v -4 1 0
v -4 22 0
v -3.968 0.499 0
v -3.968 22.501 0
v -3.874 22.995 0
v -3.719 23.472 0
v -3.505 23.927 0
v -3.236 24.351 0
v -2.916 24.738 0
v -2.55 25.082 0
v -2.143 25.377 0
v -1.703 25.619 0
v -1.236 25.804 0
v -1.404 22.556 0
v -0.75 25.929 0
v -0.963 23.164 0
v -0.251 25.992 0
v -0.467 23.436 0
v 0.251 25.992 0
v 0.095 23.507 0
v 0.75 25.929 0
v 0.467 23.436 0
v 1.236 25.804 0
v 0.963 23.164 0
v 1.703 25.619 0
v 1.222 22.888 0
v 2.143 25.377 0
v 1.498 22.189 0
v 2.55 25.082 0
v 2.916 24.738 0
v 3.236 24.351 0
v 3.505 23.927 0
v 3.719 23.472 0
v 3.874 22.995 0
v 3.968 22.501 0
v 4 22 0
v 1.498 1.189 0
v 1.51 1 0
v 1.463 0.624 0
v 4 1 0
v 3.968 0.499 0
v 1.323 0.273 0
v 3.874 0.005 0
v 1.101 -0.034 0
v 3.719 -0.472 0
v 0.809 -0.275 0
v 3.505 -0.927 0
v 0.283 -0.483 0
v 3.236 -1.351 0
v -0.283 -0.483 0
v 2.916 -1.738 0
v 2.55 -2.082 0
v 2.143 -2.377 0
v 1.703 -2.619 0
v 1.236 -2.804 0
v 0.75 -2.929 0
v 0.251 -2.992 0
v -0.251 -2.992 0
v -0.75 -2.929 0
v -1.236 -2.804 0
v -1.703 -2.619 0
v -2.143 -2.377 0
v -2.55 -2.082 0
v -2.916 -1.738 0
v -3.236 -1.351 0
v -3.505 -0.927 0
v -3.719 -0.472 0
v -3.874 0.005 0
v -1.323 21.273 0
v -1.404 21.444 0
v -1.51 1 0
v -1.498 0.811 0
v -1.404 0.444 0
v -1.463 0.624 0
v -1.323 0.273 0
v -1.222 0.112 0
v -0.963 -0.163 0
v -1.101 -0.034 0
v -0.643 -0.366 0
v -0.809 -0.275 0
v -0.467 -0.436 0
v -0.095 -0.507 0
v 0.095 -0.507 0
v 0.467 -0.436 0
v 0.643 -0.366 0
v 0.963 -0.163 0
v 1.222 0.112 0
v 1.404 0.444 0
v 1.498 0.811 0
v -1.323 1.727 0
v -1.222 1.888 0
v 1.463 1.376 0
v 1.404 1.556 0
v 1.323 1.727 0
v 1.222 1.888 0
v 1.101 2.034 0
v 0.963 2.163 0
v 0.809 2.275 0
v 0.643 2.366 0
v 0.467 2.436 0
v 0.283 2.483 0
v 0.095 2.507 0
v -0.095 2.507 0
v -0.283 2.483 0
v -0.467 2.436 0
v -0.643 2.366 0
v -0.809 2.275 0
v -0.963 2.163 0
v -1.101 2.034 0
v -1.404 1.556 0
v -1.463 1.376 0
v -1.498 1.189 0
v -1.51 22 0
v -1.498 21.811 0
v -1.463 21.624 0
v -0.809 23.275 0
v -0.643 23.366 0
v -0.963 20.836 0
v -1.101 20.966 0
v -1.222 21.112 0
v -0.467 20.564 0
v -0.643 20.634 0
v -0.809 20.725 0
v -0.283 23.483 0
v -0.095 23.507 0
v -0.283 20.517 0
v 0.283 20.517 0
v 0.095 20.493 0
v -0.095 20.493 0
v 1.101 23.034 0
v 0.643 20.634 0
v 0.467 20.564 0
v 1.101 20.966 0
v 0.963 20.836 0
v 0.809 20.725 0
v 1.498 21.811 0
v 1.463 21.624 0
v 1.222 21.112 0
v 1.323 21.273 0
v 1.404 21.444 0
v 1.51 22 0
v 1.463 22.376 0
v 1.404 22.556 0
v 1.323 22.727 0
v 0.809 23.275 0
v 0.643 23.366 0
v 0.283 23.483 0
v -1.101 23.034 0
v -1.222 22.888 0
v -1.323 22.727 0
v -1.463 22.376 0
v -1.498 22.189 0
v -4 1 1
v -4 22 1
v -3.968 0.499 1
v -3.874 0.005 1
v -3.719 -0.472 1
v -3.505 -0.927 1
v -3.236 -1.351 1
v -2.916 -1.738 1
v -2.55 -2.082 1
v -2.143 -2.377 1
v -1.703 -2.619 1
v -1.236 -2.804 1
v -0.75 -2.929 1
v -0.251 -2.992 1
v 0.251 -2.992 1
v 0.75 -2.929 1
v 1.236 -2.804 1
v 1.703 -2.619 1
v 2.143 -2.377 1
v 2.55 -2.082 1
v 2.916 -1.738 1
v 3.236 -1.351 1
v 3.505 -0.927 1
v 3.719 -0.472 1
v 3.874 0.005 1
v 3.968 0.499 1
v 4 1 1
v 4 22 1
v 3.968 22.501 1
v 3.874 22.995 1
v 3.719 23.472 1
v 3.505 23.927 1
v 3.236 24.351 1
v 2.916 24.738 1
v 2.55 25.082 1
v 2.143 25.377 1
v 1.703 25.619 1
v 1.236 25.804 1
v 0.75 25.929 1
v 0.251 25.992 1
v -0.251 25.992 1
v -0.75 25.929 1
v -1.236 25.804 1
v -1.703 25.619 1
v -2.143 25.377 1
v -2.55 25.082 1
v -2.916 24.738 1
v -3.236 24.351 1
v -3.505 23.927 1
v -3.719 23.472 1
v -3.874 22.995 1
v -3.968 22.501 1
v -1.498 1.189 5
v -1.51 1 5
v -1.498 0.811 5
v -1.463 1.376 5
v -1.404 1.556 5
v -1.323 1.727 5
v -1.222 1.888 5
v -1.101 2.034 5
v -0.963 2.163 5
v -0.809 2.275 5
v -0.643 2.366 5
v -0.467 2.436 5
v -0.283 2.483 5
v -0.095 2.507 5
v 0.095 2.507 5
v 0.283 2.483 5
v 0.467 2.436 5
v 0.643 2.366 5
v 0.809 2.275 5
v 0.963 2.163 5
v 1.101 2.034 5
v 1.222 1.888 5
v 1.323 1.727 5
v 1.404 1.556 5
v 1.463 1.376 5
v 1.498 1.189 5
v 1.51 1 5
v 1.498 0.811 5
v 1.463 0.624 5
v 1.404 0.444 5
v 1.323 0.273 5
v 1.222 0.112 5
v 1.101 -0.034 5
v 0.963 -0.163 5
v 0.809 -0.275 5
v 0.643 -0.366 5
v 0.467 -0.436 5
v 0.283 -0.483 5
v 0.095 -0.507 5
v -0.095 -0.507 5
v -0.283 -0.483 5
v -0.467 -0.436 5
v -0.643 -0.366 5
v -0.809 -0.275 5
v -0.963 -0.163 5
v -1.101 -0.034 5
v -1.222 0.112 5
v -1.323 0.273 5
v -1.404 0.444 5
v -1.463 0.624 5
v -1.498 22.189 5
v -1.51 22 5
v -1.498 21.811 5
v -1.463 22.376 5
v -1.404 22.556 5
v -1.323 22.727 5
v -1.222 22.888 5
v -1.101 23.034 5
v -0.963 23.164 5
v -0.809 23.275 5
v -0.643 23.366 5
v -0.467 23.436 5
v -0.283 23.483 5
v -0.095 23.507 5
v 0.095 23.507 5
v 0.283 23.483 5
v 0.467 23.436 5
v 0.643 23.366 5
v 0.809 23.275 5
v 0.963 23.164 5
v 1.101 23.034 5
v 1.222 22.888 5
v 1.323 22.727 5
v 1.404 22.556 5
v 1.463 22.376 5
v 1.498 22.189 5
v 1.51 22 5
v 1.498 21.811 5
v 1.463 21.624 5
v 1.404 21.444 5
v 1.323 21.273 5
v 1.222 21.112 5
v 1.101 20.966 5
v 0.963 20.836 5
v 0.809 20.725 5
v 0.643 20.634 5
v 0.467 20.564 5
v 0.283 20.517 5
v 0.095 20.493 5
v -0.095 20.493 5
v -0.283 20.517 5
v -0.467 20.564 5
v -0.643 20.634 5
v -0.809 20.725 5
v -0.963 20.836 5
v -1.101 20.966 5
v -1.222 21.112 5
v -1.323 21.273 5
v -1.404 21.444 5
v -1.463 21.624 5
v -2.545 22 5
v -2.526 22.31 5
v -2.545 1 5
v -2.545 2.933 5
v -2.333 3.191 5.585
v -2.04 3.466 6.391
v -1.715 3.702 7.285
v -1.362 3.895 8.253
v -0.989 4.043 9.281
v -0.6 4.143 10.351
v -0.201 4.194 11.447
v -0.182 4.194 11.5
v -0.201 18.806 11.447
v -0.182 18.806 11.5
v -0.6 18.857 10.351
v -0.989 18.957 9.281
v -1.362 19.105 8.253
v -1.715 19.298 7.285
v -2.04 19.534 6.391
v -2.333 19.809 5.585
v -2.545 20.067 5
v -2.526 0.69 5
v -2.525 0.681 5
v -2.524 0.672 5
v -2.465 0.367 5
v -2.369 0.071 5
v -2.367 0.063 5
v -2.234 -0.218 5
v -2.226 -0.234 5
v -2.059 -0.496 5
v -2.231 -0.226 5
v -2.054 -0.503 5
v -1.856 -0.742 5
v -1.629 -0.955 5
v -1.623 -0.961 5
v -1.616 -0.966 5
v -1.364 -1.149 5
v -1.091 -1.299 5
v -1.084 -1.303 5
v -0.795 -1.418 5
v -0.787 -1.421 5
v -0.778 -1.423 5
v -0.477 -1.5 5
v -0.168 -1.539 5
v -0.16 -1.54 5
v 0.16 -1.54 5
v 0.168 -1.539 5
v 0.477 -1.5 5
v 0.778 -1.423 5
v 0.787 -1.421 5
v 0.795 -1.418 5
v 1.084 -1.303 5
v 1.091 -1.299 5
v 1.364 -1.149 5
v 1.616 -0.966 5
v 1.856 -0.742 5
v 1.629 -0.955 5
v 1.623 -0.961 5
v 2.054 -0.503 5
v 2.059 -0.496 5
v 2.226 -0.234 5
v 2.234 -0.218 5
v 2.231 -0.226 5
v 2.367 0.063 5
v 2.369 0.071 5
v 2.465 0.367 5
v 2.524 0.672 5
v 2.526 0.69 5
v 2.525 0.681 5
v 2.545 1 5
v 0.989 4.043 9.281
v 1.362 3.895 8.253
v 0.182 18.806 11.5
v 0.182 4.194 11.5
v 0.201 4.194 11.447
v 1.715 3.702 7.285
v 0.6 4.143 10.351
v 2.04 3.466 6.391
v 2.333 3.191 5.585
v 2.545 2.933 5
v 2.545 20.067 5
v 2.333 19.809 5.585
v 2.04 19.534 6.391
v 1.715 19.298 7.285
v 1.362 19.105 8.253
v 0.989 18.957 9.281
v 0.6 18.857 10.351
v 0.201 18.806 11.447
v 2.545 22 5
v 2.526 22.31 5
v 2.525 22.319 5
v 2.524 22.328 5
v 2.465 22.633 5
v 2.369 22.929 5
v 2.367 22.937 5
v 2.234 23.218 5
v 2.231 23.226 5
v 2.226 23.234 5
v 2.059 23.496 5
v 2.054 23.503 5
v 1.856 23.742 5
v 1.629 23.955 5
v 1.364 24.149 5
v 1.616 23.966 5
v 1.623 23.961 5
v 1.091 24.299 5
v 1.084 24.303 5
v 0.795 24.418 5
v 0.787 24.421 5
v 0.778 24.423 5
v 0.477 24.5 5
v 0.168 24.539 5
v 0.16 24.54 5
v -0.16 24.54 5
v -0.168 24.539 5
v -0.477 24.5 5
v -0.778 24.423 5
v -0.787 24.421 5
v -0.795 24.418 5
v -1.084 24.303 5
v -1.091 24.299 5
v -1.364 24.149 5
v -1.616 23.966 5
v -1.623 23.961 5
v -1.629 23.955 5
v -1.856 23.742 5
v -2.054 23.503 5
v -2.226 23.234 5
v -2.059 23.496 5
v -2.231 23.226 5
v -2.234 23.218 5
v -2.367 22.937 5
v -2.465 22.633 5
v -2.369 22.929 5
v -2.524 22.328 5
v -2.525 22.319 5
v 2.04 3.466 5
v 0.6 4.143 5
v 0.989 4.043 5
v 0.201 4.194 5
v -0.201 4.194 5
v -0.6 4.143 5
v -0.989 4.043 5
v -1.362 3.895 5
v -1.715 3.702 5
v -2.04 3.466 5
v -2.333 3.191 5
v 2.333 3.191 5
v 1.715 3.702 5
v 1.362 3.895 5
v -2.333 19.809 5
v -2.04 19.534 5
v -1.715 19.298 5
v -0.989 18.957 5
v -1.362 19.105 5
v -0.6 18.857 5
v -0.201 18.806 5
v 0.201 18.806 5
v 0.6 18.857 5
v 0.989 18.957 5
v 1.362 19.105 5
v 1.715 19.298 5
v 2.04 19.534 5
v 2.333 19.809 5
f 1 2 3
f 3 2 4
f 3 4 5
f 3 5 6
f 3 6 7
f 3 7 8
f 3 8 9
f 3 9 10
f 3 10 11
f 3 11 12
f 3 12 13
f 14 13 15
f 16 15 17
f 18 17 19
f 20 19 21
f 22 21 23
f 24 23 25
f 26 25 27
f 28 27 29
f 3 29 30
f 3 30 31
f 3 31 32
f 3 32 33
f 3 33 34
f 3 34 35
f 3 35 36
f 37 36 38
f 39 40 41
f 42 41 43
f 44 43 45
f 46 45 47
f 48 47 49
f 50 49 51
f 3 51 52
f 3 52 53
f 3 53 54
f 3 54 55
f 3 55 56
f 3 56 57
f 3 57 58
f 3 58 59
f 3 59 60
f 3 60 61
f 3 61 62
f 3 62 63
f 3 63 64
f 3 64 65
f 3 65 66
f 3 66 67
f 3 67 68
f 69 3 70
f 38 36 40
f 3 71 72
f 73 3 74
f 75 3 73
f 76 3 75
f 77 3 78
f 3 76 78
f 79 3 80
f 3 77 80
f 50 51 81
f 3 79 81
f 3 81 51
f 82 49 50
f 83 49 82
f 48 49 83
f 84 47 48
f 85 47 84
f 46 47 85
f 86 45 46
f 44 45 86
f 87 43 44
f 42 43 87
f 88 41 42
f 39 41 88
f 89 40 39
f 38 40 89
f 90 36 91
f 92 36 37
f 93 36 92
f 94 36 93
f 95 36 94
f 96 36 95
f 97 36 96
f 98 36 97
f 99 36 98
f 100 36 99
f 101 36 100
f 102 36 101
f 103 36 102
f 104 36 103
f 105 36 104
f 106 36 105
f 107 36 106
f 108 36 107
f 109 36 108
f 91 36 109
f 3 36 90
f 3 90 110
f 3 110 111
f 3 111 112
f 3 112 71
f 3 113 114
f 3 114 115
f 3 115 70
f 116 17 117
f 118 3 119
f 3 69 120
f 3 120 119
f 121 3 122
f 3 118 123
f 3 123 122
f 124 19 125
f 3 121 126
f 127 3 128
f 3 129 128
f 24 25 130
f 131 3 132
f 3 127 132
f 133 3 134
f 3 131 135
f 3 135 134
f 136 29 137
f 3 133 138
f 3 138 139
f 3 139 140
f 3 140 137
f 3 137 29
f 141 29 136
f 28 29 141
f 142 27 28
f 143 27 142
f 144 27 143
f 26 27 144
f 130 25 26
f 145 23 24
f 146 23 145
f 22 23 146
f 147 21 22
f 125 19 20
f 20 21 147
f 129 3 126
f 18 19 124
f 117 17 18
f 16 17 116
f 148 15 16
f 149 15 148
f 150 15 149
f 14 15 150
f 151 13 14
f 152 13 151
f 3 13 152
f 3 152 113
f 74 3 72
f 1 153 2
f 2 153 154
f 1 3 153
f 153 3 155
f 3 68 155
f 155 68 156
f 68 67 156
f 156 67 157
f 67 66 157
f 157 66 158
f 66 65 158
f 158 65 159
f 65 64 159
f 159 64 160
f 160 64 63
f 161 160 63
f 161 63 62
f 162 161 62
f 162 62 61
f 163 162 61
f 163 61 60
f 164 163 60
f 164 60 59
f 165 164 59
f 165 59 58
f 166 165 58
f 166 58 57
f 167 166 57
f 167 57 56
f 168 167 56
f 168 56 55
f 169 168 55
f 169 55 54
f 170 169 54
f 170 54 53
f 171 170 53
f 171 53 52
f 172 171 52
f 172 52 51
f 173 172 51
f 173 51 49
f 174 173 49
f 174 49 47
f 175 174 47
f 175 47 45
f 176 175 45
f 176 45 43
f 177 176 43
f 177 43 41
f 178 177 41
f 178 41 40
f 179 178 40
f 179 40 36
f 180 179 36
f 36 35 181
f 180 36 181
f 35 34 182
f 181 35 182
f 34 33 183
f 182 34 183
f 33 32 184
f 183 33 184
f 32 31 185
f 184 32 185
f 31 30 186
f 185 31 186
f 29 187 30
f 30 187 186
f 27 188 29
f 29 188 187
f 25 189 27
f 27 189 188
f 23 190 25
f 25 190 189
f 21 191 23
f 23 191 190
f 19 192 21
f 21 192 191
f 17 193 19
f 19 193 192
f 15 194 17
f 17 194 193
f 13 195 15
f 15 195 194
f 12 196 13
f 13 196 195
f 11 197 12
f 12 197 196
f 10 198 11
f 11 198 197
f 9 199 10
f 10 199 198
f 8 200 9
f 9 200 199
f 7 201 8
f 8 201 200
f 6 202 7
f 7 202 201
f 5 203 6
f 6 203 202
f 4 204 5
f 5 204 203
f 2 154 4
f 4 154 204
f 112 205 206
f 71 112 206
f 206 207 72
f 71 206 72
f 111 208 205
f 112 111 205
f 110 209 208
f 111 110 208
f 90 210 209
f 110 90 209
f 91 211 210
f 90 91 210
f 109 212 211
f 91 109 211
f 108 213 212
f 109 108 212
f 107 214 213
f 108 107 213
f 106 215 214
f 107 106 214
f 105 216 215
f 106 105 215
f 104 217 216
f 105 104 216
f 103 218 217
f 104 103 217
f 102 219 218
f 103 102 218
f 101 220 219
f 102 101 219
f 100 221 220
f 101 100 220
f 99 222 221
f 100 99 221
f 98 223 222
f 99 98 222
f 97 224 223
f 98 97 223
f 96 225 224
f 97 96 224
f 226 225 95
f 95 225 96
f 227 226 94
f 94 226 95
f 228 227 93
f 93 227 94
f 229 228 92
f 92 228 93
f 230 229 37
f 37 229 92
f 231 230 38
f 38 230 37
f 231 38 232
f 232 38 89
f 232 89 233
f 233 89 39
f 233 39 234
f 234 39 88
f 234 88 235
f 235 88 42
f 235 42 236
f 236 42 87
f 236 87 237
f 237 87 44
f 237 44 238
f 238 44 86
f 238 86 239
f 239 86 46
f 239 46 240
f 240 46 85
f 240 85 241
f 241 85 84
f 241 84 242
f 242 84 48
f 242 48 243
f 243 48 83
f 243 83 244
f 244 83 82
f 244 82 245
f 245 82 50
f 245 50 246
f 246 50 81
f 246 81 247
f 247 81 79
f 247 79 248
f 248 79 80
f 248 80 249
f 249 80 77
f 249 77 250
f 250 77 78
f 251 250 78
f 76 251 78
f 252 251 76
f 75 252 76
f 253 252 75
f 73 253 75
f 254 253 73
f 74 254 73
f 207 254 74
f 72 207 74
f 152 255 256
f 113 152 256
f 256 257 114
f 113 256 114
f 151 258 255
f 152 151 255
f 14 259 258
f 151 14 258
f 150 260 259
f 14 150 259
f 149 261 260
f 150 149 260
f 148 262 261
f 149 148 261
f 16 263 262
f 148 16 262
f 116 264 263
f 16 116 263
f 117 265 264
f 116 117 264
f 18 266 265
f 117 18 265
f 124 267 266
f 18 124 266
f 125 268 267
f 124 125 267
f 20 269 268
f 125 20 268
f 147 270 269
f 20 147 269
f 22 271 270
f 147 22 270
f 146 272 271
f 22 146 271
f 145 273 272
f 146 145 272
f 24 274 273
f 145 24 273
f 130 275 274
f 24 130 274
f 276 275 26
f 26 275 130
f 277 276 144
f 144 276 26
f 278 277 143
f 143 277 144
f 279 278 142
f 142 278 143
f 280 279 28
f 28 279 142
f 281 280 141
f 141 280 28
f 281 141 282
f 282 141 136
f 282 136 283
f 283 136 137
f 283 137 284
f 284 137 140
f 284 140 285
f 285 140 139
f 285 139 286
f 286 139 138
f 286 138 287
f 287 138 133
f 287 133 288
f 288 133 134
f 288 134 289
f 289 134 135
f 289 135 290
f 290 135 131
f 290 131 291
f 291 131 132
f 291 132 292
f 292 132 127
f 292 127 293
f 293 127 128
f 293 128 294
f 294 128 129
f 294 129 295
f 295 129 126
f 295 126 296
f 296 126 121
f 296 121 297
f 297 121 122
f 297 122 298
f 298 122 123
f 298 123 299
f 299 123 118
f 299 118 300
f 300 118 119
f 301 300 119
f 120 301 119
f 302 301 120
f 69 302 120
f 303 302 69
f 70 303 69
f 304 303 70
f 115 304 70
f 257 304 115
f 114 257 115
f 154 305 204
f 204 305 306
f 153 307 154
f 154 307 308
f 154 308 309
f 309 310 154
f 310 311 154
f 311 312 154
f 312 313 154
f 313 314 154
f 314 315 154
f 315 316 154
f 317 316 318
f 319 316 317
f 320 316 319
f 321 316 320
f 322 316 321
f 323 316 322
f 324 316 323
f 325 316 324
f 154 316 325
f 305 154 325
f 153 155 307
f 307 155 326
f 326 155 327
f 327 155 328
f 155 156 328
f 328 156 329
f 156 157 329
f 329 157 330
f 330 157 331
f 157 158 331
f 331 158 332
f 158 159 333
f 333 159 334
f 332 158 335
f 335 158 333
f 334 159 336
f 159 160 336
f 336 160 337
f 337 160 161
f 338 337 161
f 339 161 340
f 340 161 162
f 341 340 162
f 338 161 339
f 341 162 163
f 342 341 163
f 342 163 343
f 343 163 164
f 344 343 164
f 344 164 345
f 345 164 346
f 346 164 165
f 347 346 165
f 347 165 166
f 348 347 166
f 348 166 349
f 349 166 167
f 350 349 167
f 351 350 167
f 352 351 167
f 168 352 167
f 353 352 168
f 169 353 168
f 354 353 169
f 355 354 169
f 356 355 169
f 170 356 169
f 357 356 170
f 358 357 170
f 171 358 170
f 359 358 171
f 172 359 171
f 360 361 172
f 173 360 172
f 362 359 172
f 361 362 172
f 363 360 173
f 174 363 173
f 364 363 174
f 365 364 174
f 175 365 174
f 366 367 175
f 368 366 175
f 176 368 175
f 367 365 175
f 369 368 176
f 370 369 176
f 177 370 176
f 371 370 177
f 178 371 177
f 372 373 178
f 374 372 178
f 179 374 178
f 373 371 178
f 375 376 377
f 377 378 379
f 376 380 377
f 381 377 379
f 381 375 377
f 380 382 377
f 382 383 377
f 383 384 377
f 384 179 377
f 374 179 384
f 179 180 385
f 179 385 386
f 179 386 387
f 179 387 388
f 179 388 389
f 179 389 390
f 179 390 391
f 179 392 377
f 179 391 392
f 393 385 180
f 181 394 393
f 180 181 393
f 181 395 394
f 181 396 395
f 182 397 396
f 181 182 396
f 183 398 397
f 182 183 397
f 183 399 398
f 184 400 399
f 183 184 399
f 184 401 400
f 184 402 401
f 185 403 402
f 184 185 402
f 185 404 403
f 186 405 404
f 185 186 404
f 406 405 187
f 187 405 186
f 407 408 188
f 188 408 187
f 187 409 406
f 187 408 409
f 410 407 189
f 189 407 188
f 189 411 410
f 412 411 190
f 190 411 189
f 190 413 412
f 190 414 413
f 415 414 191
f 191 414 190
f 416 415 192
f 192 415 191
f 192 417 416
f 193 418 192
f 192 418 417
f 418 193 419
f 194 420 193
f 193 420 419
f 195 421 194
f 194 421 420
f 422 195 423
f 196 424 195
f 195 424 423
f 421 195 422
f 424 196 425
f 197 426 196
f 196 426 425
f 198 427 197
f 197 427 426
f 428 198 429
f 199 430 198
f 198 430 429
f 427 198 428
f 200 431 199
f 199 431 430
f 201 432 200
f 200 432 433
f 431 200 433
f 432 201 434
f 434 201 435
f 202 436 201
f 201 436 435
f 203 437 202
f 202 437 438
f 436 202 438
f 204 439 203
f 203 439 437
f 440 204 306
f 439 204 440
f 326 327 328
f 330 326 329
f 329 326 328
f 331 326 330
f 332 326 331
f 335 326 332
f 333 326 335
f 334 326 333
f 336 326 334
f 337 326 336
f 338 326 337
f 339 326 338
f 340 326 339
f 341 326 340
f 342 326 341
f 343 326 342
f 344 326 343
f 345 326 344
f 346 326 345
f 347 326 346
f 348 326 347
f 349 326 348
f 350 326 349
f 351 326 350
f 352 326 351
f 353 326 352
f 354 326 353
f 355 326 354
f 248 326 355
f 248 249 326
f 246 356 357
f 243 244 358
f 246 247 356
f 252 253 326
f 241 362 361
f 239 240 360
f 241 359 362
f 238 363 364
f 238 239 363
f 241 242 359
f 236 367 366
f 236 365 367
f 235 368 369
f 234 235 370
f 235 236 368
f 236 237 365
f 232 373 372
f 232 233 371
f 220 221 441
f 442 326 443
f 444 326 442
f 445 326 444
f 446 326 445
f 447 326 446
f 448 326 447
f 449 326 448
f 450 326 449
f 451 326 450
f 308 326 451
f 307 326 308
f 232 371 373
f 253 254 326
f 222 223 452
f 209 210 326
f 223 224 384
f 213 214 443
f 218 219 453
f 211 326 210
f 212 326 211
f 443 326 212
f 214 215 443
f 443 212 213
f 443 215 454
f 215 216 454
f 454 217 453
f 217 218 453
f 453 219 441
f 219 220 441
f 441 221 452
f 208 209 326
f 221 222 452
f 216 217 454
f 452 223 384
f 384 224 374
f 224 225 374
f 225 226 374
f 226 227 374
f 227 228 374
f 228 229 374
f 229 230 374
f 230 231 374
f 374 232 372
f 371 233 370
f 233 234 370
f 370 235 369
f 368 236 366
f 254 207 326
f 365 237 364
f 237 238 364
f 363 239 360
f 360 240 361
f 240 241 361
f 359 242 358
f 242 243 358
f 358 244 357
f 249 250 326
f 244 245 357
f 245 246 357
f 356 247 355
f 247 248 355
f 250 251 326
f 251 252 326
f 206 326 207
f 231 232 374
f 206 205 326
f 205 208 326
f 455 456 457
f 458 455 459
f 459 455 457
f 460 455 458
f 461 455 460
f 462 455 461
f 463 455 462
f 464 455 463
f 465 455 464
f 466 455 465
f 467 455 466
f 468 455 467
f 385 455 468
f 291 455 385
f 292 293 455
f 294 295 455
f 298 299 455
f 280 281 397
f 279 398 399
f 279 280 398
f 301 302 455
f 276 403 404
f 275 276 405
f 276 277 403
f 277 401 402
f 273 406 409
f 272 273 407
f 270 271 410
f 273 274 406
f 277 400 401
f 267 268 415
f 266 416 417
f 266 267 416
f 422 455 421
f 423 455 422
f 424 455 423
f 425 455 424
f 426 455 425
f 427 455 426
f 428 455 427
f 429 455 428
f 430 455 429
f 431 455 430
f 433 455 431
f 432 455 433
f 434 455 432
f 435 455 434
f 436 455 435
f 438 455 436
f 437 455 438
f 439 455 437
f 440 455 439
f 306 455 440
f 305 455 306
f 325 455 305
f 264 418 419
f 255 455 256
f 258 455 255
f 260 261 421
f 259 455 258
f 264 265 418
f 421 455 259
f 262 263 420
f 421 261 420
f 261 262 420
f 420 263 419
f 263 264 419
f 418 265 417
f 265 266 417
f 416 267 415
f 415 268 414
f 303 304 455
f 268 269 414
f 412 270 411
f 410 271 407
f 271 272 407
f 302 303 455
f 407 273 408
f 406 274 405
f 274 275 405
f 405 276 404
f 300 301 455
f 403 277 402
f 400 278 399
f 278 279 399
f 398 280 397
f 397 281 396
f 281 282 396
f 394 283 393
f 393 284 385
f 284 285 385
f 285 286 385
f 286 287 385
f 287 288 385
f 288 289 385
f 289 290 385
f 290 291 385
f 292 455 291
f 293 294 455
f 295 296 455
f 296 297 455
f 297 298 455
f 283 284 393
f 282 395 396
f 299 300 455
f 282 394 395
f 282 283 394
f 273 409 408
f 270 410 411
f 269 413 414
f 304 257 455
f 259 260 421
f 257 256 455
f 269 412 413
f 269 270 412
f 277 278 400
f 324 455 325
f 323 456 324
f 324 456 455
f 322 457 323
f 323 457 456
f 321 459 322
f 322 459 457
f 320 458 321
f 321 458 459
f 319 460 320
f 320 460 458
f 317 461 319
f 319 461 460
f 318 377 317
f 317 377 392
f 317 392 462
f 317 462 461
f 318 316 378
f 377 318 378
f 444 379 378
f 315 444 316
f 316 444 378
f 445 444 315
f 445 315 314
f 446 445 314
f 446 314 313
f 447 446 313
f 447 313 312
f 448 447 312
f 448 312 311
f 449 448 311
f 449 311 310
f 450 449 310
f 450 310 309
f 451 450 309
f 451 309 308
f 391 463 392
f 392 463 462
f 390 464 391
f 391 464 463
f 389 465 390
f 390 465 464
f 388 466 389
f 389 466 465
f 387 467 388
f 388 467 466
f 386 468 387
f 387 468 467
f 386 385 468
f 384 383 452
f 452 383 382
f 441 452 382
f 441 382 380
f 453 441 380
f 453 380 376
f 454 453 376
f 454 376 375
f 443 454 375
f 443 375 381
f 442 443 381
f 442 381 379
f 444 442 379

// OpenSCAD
dk=22;
res=50;
difference(){
	hull(){for(k=[1,dk]){translate([0,k,0]){
		hull(){for(i=[1,dk]){
			translate([0,0,i/2]){cylinder(1,4/i,4/i,$fn=res,true);}
		}}
	}}}
	for(i=[1,dk]){translate([0,i,25]){cylinder(50,1.51,1.51,$fn=res,true);}}
for(i=[1,dk]){translate([0,i,30]){cylinder(50,3.2,3.2,$fn=res,true);}}
}
